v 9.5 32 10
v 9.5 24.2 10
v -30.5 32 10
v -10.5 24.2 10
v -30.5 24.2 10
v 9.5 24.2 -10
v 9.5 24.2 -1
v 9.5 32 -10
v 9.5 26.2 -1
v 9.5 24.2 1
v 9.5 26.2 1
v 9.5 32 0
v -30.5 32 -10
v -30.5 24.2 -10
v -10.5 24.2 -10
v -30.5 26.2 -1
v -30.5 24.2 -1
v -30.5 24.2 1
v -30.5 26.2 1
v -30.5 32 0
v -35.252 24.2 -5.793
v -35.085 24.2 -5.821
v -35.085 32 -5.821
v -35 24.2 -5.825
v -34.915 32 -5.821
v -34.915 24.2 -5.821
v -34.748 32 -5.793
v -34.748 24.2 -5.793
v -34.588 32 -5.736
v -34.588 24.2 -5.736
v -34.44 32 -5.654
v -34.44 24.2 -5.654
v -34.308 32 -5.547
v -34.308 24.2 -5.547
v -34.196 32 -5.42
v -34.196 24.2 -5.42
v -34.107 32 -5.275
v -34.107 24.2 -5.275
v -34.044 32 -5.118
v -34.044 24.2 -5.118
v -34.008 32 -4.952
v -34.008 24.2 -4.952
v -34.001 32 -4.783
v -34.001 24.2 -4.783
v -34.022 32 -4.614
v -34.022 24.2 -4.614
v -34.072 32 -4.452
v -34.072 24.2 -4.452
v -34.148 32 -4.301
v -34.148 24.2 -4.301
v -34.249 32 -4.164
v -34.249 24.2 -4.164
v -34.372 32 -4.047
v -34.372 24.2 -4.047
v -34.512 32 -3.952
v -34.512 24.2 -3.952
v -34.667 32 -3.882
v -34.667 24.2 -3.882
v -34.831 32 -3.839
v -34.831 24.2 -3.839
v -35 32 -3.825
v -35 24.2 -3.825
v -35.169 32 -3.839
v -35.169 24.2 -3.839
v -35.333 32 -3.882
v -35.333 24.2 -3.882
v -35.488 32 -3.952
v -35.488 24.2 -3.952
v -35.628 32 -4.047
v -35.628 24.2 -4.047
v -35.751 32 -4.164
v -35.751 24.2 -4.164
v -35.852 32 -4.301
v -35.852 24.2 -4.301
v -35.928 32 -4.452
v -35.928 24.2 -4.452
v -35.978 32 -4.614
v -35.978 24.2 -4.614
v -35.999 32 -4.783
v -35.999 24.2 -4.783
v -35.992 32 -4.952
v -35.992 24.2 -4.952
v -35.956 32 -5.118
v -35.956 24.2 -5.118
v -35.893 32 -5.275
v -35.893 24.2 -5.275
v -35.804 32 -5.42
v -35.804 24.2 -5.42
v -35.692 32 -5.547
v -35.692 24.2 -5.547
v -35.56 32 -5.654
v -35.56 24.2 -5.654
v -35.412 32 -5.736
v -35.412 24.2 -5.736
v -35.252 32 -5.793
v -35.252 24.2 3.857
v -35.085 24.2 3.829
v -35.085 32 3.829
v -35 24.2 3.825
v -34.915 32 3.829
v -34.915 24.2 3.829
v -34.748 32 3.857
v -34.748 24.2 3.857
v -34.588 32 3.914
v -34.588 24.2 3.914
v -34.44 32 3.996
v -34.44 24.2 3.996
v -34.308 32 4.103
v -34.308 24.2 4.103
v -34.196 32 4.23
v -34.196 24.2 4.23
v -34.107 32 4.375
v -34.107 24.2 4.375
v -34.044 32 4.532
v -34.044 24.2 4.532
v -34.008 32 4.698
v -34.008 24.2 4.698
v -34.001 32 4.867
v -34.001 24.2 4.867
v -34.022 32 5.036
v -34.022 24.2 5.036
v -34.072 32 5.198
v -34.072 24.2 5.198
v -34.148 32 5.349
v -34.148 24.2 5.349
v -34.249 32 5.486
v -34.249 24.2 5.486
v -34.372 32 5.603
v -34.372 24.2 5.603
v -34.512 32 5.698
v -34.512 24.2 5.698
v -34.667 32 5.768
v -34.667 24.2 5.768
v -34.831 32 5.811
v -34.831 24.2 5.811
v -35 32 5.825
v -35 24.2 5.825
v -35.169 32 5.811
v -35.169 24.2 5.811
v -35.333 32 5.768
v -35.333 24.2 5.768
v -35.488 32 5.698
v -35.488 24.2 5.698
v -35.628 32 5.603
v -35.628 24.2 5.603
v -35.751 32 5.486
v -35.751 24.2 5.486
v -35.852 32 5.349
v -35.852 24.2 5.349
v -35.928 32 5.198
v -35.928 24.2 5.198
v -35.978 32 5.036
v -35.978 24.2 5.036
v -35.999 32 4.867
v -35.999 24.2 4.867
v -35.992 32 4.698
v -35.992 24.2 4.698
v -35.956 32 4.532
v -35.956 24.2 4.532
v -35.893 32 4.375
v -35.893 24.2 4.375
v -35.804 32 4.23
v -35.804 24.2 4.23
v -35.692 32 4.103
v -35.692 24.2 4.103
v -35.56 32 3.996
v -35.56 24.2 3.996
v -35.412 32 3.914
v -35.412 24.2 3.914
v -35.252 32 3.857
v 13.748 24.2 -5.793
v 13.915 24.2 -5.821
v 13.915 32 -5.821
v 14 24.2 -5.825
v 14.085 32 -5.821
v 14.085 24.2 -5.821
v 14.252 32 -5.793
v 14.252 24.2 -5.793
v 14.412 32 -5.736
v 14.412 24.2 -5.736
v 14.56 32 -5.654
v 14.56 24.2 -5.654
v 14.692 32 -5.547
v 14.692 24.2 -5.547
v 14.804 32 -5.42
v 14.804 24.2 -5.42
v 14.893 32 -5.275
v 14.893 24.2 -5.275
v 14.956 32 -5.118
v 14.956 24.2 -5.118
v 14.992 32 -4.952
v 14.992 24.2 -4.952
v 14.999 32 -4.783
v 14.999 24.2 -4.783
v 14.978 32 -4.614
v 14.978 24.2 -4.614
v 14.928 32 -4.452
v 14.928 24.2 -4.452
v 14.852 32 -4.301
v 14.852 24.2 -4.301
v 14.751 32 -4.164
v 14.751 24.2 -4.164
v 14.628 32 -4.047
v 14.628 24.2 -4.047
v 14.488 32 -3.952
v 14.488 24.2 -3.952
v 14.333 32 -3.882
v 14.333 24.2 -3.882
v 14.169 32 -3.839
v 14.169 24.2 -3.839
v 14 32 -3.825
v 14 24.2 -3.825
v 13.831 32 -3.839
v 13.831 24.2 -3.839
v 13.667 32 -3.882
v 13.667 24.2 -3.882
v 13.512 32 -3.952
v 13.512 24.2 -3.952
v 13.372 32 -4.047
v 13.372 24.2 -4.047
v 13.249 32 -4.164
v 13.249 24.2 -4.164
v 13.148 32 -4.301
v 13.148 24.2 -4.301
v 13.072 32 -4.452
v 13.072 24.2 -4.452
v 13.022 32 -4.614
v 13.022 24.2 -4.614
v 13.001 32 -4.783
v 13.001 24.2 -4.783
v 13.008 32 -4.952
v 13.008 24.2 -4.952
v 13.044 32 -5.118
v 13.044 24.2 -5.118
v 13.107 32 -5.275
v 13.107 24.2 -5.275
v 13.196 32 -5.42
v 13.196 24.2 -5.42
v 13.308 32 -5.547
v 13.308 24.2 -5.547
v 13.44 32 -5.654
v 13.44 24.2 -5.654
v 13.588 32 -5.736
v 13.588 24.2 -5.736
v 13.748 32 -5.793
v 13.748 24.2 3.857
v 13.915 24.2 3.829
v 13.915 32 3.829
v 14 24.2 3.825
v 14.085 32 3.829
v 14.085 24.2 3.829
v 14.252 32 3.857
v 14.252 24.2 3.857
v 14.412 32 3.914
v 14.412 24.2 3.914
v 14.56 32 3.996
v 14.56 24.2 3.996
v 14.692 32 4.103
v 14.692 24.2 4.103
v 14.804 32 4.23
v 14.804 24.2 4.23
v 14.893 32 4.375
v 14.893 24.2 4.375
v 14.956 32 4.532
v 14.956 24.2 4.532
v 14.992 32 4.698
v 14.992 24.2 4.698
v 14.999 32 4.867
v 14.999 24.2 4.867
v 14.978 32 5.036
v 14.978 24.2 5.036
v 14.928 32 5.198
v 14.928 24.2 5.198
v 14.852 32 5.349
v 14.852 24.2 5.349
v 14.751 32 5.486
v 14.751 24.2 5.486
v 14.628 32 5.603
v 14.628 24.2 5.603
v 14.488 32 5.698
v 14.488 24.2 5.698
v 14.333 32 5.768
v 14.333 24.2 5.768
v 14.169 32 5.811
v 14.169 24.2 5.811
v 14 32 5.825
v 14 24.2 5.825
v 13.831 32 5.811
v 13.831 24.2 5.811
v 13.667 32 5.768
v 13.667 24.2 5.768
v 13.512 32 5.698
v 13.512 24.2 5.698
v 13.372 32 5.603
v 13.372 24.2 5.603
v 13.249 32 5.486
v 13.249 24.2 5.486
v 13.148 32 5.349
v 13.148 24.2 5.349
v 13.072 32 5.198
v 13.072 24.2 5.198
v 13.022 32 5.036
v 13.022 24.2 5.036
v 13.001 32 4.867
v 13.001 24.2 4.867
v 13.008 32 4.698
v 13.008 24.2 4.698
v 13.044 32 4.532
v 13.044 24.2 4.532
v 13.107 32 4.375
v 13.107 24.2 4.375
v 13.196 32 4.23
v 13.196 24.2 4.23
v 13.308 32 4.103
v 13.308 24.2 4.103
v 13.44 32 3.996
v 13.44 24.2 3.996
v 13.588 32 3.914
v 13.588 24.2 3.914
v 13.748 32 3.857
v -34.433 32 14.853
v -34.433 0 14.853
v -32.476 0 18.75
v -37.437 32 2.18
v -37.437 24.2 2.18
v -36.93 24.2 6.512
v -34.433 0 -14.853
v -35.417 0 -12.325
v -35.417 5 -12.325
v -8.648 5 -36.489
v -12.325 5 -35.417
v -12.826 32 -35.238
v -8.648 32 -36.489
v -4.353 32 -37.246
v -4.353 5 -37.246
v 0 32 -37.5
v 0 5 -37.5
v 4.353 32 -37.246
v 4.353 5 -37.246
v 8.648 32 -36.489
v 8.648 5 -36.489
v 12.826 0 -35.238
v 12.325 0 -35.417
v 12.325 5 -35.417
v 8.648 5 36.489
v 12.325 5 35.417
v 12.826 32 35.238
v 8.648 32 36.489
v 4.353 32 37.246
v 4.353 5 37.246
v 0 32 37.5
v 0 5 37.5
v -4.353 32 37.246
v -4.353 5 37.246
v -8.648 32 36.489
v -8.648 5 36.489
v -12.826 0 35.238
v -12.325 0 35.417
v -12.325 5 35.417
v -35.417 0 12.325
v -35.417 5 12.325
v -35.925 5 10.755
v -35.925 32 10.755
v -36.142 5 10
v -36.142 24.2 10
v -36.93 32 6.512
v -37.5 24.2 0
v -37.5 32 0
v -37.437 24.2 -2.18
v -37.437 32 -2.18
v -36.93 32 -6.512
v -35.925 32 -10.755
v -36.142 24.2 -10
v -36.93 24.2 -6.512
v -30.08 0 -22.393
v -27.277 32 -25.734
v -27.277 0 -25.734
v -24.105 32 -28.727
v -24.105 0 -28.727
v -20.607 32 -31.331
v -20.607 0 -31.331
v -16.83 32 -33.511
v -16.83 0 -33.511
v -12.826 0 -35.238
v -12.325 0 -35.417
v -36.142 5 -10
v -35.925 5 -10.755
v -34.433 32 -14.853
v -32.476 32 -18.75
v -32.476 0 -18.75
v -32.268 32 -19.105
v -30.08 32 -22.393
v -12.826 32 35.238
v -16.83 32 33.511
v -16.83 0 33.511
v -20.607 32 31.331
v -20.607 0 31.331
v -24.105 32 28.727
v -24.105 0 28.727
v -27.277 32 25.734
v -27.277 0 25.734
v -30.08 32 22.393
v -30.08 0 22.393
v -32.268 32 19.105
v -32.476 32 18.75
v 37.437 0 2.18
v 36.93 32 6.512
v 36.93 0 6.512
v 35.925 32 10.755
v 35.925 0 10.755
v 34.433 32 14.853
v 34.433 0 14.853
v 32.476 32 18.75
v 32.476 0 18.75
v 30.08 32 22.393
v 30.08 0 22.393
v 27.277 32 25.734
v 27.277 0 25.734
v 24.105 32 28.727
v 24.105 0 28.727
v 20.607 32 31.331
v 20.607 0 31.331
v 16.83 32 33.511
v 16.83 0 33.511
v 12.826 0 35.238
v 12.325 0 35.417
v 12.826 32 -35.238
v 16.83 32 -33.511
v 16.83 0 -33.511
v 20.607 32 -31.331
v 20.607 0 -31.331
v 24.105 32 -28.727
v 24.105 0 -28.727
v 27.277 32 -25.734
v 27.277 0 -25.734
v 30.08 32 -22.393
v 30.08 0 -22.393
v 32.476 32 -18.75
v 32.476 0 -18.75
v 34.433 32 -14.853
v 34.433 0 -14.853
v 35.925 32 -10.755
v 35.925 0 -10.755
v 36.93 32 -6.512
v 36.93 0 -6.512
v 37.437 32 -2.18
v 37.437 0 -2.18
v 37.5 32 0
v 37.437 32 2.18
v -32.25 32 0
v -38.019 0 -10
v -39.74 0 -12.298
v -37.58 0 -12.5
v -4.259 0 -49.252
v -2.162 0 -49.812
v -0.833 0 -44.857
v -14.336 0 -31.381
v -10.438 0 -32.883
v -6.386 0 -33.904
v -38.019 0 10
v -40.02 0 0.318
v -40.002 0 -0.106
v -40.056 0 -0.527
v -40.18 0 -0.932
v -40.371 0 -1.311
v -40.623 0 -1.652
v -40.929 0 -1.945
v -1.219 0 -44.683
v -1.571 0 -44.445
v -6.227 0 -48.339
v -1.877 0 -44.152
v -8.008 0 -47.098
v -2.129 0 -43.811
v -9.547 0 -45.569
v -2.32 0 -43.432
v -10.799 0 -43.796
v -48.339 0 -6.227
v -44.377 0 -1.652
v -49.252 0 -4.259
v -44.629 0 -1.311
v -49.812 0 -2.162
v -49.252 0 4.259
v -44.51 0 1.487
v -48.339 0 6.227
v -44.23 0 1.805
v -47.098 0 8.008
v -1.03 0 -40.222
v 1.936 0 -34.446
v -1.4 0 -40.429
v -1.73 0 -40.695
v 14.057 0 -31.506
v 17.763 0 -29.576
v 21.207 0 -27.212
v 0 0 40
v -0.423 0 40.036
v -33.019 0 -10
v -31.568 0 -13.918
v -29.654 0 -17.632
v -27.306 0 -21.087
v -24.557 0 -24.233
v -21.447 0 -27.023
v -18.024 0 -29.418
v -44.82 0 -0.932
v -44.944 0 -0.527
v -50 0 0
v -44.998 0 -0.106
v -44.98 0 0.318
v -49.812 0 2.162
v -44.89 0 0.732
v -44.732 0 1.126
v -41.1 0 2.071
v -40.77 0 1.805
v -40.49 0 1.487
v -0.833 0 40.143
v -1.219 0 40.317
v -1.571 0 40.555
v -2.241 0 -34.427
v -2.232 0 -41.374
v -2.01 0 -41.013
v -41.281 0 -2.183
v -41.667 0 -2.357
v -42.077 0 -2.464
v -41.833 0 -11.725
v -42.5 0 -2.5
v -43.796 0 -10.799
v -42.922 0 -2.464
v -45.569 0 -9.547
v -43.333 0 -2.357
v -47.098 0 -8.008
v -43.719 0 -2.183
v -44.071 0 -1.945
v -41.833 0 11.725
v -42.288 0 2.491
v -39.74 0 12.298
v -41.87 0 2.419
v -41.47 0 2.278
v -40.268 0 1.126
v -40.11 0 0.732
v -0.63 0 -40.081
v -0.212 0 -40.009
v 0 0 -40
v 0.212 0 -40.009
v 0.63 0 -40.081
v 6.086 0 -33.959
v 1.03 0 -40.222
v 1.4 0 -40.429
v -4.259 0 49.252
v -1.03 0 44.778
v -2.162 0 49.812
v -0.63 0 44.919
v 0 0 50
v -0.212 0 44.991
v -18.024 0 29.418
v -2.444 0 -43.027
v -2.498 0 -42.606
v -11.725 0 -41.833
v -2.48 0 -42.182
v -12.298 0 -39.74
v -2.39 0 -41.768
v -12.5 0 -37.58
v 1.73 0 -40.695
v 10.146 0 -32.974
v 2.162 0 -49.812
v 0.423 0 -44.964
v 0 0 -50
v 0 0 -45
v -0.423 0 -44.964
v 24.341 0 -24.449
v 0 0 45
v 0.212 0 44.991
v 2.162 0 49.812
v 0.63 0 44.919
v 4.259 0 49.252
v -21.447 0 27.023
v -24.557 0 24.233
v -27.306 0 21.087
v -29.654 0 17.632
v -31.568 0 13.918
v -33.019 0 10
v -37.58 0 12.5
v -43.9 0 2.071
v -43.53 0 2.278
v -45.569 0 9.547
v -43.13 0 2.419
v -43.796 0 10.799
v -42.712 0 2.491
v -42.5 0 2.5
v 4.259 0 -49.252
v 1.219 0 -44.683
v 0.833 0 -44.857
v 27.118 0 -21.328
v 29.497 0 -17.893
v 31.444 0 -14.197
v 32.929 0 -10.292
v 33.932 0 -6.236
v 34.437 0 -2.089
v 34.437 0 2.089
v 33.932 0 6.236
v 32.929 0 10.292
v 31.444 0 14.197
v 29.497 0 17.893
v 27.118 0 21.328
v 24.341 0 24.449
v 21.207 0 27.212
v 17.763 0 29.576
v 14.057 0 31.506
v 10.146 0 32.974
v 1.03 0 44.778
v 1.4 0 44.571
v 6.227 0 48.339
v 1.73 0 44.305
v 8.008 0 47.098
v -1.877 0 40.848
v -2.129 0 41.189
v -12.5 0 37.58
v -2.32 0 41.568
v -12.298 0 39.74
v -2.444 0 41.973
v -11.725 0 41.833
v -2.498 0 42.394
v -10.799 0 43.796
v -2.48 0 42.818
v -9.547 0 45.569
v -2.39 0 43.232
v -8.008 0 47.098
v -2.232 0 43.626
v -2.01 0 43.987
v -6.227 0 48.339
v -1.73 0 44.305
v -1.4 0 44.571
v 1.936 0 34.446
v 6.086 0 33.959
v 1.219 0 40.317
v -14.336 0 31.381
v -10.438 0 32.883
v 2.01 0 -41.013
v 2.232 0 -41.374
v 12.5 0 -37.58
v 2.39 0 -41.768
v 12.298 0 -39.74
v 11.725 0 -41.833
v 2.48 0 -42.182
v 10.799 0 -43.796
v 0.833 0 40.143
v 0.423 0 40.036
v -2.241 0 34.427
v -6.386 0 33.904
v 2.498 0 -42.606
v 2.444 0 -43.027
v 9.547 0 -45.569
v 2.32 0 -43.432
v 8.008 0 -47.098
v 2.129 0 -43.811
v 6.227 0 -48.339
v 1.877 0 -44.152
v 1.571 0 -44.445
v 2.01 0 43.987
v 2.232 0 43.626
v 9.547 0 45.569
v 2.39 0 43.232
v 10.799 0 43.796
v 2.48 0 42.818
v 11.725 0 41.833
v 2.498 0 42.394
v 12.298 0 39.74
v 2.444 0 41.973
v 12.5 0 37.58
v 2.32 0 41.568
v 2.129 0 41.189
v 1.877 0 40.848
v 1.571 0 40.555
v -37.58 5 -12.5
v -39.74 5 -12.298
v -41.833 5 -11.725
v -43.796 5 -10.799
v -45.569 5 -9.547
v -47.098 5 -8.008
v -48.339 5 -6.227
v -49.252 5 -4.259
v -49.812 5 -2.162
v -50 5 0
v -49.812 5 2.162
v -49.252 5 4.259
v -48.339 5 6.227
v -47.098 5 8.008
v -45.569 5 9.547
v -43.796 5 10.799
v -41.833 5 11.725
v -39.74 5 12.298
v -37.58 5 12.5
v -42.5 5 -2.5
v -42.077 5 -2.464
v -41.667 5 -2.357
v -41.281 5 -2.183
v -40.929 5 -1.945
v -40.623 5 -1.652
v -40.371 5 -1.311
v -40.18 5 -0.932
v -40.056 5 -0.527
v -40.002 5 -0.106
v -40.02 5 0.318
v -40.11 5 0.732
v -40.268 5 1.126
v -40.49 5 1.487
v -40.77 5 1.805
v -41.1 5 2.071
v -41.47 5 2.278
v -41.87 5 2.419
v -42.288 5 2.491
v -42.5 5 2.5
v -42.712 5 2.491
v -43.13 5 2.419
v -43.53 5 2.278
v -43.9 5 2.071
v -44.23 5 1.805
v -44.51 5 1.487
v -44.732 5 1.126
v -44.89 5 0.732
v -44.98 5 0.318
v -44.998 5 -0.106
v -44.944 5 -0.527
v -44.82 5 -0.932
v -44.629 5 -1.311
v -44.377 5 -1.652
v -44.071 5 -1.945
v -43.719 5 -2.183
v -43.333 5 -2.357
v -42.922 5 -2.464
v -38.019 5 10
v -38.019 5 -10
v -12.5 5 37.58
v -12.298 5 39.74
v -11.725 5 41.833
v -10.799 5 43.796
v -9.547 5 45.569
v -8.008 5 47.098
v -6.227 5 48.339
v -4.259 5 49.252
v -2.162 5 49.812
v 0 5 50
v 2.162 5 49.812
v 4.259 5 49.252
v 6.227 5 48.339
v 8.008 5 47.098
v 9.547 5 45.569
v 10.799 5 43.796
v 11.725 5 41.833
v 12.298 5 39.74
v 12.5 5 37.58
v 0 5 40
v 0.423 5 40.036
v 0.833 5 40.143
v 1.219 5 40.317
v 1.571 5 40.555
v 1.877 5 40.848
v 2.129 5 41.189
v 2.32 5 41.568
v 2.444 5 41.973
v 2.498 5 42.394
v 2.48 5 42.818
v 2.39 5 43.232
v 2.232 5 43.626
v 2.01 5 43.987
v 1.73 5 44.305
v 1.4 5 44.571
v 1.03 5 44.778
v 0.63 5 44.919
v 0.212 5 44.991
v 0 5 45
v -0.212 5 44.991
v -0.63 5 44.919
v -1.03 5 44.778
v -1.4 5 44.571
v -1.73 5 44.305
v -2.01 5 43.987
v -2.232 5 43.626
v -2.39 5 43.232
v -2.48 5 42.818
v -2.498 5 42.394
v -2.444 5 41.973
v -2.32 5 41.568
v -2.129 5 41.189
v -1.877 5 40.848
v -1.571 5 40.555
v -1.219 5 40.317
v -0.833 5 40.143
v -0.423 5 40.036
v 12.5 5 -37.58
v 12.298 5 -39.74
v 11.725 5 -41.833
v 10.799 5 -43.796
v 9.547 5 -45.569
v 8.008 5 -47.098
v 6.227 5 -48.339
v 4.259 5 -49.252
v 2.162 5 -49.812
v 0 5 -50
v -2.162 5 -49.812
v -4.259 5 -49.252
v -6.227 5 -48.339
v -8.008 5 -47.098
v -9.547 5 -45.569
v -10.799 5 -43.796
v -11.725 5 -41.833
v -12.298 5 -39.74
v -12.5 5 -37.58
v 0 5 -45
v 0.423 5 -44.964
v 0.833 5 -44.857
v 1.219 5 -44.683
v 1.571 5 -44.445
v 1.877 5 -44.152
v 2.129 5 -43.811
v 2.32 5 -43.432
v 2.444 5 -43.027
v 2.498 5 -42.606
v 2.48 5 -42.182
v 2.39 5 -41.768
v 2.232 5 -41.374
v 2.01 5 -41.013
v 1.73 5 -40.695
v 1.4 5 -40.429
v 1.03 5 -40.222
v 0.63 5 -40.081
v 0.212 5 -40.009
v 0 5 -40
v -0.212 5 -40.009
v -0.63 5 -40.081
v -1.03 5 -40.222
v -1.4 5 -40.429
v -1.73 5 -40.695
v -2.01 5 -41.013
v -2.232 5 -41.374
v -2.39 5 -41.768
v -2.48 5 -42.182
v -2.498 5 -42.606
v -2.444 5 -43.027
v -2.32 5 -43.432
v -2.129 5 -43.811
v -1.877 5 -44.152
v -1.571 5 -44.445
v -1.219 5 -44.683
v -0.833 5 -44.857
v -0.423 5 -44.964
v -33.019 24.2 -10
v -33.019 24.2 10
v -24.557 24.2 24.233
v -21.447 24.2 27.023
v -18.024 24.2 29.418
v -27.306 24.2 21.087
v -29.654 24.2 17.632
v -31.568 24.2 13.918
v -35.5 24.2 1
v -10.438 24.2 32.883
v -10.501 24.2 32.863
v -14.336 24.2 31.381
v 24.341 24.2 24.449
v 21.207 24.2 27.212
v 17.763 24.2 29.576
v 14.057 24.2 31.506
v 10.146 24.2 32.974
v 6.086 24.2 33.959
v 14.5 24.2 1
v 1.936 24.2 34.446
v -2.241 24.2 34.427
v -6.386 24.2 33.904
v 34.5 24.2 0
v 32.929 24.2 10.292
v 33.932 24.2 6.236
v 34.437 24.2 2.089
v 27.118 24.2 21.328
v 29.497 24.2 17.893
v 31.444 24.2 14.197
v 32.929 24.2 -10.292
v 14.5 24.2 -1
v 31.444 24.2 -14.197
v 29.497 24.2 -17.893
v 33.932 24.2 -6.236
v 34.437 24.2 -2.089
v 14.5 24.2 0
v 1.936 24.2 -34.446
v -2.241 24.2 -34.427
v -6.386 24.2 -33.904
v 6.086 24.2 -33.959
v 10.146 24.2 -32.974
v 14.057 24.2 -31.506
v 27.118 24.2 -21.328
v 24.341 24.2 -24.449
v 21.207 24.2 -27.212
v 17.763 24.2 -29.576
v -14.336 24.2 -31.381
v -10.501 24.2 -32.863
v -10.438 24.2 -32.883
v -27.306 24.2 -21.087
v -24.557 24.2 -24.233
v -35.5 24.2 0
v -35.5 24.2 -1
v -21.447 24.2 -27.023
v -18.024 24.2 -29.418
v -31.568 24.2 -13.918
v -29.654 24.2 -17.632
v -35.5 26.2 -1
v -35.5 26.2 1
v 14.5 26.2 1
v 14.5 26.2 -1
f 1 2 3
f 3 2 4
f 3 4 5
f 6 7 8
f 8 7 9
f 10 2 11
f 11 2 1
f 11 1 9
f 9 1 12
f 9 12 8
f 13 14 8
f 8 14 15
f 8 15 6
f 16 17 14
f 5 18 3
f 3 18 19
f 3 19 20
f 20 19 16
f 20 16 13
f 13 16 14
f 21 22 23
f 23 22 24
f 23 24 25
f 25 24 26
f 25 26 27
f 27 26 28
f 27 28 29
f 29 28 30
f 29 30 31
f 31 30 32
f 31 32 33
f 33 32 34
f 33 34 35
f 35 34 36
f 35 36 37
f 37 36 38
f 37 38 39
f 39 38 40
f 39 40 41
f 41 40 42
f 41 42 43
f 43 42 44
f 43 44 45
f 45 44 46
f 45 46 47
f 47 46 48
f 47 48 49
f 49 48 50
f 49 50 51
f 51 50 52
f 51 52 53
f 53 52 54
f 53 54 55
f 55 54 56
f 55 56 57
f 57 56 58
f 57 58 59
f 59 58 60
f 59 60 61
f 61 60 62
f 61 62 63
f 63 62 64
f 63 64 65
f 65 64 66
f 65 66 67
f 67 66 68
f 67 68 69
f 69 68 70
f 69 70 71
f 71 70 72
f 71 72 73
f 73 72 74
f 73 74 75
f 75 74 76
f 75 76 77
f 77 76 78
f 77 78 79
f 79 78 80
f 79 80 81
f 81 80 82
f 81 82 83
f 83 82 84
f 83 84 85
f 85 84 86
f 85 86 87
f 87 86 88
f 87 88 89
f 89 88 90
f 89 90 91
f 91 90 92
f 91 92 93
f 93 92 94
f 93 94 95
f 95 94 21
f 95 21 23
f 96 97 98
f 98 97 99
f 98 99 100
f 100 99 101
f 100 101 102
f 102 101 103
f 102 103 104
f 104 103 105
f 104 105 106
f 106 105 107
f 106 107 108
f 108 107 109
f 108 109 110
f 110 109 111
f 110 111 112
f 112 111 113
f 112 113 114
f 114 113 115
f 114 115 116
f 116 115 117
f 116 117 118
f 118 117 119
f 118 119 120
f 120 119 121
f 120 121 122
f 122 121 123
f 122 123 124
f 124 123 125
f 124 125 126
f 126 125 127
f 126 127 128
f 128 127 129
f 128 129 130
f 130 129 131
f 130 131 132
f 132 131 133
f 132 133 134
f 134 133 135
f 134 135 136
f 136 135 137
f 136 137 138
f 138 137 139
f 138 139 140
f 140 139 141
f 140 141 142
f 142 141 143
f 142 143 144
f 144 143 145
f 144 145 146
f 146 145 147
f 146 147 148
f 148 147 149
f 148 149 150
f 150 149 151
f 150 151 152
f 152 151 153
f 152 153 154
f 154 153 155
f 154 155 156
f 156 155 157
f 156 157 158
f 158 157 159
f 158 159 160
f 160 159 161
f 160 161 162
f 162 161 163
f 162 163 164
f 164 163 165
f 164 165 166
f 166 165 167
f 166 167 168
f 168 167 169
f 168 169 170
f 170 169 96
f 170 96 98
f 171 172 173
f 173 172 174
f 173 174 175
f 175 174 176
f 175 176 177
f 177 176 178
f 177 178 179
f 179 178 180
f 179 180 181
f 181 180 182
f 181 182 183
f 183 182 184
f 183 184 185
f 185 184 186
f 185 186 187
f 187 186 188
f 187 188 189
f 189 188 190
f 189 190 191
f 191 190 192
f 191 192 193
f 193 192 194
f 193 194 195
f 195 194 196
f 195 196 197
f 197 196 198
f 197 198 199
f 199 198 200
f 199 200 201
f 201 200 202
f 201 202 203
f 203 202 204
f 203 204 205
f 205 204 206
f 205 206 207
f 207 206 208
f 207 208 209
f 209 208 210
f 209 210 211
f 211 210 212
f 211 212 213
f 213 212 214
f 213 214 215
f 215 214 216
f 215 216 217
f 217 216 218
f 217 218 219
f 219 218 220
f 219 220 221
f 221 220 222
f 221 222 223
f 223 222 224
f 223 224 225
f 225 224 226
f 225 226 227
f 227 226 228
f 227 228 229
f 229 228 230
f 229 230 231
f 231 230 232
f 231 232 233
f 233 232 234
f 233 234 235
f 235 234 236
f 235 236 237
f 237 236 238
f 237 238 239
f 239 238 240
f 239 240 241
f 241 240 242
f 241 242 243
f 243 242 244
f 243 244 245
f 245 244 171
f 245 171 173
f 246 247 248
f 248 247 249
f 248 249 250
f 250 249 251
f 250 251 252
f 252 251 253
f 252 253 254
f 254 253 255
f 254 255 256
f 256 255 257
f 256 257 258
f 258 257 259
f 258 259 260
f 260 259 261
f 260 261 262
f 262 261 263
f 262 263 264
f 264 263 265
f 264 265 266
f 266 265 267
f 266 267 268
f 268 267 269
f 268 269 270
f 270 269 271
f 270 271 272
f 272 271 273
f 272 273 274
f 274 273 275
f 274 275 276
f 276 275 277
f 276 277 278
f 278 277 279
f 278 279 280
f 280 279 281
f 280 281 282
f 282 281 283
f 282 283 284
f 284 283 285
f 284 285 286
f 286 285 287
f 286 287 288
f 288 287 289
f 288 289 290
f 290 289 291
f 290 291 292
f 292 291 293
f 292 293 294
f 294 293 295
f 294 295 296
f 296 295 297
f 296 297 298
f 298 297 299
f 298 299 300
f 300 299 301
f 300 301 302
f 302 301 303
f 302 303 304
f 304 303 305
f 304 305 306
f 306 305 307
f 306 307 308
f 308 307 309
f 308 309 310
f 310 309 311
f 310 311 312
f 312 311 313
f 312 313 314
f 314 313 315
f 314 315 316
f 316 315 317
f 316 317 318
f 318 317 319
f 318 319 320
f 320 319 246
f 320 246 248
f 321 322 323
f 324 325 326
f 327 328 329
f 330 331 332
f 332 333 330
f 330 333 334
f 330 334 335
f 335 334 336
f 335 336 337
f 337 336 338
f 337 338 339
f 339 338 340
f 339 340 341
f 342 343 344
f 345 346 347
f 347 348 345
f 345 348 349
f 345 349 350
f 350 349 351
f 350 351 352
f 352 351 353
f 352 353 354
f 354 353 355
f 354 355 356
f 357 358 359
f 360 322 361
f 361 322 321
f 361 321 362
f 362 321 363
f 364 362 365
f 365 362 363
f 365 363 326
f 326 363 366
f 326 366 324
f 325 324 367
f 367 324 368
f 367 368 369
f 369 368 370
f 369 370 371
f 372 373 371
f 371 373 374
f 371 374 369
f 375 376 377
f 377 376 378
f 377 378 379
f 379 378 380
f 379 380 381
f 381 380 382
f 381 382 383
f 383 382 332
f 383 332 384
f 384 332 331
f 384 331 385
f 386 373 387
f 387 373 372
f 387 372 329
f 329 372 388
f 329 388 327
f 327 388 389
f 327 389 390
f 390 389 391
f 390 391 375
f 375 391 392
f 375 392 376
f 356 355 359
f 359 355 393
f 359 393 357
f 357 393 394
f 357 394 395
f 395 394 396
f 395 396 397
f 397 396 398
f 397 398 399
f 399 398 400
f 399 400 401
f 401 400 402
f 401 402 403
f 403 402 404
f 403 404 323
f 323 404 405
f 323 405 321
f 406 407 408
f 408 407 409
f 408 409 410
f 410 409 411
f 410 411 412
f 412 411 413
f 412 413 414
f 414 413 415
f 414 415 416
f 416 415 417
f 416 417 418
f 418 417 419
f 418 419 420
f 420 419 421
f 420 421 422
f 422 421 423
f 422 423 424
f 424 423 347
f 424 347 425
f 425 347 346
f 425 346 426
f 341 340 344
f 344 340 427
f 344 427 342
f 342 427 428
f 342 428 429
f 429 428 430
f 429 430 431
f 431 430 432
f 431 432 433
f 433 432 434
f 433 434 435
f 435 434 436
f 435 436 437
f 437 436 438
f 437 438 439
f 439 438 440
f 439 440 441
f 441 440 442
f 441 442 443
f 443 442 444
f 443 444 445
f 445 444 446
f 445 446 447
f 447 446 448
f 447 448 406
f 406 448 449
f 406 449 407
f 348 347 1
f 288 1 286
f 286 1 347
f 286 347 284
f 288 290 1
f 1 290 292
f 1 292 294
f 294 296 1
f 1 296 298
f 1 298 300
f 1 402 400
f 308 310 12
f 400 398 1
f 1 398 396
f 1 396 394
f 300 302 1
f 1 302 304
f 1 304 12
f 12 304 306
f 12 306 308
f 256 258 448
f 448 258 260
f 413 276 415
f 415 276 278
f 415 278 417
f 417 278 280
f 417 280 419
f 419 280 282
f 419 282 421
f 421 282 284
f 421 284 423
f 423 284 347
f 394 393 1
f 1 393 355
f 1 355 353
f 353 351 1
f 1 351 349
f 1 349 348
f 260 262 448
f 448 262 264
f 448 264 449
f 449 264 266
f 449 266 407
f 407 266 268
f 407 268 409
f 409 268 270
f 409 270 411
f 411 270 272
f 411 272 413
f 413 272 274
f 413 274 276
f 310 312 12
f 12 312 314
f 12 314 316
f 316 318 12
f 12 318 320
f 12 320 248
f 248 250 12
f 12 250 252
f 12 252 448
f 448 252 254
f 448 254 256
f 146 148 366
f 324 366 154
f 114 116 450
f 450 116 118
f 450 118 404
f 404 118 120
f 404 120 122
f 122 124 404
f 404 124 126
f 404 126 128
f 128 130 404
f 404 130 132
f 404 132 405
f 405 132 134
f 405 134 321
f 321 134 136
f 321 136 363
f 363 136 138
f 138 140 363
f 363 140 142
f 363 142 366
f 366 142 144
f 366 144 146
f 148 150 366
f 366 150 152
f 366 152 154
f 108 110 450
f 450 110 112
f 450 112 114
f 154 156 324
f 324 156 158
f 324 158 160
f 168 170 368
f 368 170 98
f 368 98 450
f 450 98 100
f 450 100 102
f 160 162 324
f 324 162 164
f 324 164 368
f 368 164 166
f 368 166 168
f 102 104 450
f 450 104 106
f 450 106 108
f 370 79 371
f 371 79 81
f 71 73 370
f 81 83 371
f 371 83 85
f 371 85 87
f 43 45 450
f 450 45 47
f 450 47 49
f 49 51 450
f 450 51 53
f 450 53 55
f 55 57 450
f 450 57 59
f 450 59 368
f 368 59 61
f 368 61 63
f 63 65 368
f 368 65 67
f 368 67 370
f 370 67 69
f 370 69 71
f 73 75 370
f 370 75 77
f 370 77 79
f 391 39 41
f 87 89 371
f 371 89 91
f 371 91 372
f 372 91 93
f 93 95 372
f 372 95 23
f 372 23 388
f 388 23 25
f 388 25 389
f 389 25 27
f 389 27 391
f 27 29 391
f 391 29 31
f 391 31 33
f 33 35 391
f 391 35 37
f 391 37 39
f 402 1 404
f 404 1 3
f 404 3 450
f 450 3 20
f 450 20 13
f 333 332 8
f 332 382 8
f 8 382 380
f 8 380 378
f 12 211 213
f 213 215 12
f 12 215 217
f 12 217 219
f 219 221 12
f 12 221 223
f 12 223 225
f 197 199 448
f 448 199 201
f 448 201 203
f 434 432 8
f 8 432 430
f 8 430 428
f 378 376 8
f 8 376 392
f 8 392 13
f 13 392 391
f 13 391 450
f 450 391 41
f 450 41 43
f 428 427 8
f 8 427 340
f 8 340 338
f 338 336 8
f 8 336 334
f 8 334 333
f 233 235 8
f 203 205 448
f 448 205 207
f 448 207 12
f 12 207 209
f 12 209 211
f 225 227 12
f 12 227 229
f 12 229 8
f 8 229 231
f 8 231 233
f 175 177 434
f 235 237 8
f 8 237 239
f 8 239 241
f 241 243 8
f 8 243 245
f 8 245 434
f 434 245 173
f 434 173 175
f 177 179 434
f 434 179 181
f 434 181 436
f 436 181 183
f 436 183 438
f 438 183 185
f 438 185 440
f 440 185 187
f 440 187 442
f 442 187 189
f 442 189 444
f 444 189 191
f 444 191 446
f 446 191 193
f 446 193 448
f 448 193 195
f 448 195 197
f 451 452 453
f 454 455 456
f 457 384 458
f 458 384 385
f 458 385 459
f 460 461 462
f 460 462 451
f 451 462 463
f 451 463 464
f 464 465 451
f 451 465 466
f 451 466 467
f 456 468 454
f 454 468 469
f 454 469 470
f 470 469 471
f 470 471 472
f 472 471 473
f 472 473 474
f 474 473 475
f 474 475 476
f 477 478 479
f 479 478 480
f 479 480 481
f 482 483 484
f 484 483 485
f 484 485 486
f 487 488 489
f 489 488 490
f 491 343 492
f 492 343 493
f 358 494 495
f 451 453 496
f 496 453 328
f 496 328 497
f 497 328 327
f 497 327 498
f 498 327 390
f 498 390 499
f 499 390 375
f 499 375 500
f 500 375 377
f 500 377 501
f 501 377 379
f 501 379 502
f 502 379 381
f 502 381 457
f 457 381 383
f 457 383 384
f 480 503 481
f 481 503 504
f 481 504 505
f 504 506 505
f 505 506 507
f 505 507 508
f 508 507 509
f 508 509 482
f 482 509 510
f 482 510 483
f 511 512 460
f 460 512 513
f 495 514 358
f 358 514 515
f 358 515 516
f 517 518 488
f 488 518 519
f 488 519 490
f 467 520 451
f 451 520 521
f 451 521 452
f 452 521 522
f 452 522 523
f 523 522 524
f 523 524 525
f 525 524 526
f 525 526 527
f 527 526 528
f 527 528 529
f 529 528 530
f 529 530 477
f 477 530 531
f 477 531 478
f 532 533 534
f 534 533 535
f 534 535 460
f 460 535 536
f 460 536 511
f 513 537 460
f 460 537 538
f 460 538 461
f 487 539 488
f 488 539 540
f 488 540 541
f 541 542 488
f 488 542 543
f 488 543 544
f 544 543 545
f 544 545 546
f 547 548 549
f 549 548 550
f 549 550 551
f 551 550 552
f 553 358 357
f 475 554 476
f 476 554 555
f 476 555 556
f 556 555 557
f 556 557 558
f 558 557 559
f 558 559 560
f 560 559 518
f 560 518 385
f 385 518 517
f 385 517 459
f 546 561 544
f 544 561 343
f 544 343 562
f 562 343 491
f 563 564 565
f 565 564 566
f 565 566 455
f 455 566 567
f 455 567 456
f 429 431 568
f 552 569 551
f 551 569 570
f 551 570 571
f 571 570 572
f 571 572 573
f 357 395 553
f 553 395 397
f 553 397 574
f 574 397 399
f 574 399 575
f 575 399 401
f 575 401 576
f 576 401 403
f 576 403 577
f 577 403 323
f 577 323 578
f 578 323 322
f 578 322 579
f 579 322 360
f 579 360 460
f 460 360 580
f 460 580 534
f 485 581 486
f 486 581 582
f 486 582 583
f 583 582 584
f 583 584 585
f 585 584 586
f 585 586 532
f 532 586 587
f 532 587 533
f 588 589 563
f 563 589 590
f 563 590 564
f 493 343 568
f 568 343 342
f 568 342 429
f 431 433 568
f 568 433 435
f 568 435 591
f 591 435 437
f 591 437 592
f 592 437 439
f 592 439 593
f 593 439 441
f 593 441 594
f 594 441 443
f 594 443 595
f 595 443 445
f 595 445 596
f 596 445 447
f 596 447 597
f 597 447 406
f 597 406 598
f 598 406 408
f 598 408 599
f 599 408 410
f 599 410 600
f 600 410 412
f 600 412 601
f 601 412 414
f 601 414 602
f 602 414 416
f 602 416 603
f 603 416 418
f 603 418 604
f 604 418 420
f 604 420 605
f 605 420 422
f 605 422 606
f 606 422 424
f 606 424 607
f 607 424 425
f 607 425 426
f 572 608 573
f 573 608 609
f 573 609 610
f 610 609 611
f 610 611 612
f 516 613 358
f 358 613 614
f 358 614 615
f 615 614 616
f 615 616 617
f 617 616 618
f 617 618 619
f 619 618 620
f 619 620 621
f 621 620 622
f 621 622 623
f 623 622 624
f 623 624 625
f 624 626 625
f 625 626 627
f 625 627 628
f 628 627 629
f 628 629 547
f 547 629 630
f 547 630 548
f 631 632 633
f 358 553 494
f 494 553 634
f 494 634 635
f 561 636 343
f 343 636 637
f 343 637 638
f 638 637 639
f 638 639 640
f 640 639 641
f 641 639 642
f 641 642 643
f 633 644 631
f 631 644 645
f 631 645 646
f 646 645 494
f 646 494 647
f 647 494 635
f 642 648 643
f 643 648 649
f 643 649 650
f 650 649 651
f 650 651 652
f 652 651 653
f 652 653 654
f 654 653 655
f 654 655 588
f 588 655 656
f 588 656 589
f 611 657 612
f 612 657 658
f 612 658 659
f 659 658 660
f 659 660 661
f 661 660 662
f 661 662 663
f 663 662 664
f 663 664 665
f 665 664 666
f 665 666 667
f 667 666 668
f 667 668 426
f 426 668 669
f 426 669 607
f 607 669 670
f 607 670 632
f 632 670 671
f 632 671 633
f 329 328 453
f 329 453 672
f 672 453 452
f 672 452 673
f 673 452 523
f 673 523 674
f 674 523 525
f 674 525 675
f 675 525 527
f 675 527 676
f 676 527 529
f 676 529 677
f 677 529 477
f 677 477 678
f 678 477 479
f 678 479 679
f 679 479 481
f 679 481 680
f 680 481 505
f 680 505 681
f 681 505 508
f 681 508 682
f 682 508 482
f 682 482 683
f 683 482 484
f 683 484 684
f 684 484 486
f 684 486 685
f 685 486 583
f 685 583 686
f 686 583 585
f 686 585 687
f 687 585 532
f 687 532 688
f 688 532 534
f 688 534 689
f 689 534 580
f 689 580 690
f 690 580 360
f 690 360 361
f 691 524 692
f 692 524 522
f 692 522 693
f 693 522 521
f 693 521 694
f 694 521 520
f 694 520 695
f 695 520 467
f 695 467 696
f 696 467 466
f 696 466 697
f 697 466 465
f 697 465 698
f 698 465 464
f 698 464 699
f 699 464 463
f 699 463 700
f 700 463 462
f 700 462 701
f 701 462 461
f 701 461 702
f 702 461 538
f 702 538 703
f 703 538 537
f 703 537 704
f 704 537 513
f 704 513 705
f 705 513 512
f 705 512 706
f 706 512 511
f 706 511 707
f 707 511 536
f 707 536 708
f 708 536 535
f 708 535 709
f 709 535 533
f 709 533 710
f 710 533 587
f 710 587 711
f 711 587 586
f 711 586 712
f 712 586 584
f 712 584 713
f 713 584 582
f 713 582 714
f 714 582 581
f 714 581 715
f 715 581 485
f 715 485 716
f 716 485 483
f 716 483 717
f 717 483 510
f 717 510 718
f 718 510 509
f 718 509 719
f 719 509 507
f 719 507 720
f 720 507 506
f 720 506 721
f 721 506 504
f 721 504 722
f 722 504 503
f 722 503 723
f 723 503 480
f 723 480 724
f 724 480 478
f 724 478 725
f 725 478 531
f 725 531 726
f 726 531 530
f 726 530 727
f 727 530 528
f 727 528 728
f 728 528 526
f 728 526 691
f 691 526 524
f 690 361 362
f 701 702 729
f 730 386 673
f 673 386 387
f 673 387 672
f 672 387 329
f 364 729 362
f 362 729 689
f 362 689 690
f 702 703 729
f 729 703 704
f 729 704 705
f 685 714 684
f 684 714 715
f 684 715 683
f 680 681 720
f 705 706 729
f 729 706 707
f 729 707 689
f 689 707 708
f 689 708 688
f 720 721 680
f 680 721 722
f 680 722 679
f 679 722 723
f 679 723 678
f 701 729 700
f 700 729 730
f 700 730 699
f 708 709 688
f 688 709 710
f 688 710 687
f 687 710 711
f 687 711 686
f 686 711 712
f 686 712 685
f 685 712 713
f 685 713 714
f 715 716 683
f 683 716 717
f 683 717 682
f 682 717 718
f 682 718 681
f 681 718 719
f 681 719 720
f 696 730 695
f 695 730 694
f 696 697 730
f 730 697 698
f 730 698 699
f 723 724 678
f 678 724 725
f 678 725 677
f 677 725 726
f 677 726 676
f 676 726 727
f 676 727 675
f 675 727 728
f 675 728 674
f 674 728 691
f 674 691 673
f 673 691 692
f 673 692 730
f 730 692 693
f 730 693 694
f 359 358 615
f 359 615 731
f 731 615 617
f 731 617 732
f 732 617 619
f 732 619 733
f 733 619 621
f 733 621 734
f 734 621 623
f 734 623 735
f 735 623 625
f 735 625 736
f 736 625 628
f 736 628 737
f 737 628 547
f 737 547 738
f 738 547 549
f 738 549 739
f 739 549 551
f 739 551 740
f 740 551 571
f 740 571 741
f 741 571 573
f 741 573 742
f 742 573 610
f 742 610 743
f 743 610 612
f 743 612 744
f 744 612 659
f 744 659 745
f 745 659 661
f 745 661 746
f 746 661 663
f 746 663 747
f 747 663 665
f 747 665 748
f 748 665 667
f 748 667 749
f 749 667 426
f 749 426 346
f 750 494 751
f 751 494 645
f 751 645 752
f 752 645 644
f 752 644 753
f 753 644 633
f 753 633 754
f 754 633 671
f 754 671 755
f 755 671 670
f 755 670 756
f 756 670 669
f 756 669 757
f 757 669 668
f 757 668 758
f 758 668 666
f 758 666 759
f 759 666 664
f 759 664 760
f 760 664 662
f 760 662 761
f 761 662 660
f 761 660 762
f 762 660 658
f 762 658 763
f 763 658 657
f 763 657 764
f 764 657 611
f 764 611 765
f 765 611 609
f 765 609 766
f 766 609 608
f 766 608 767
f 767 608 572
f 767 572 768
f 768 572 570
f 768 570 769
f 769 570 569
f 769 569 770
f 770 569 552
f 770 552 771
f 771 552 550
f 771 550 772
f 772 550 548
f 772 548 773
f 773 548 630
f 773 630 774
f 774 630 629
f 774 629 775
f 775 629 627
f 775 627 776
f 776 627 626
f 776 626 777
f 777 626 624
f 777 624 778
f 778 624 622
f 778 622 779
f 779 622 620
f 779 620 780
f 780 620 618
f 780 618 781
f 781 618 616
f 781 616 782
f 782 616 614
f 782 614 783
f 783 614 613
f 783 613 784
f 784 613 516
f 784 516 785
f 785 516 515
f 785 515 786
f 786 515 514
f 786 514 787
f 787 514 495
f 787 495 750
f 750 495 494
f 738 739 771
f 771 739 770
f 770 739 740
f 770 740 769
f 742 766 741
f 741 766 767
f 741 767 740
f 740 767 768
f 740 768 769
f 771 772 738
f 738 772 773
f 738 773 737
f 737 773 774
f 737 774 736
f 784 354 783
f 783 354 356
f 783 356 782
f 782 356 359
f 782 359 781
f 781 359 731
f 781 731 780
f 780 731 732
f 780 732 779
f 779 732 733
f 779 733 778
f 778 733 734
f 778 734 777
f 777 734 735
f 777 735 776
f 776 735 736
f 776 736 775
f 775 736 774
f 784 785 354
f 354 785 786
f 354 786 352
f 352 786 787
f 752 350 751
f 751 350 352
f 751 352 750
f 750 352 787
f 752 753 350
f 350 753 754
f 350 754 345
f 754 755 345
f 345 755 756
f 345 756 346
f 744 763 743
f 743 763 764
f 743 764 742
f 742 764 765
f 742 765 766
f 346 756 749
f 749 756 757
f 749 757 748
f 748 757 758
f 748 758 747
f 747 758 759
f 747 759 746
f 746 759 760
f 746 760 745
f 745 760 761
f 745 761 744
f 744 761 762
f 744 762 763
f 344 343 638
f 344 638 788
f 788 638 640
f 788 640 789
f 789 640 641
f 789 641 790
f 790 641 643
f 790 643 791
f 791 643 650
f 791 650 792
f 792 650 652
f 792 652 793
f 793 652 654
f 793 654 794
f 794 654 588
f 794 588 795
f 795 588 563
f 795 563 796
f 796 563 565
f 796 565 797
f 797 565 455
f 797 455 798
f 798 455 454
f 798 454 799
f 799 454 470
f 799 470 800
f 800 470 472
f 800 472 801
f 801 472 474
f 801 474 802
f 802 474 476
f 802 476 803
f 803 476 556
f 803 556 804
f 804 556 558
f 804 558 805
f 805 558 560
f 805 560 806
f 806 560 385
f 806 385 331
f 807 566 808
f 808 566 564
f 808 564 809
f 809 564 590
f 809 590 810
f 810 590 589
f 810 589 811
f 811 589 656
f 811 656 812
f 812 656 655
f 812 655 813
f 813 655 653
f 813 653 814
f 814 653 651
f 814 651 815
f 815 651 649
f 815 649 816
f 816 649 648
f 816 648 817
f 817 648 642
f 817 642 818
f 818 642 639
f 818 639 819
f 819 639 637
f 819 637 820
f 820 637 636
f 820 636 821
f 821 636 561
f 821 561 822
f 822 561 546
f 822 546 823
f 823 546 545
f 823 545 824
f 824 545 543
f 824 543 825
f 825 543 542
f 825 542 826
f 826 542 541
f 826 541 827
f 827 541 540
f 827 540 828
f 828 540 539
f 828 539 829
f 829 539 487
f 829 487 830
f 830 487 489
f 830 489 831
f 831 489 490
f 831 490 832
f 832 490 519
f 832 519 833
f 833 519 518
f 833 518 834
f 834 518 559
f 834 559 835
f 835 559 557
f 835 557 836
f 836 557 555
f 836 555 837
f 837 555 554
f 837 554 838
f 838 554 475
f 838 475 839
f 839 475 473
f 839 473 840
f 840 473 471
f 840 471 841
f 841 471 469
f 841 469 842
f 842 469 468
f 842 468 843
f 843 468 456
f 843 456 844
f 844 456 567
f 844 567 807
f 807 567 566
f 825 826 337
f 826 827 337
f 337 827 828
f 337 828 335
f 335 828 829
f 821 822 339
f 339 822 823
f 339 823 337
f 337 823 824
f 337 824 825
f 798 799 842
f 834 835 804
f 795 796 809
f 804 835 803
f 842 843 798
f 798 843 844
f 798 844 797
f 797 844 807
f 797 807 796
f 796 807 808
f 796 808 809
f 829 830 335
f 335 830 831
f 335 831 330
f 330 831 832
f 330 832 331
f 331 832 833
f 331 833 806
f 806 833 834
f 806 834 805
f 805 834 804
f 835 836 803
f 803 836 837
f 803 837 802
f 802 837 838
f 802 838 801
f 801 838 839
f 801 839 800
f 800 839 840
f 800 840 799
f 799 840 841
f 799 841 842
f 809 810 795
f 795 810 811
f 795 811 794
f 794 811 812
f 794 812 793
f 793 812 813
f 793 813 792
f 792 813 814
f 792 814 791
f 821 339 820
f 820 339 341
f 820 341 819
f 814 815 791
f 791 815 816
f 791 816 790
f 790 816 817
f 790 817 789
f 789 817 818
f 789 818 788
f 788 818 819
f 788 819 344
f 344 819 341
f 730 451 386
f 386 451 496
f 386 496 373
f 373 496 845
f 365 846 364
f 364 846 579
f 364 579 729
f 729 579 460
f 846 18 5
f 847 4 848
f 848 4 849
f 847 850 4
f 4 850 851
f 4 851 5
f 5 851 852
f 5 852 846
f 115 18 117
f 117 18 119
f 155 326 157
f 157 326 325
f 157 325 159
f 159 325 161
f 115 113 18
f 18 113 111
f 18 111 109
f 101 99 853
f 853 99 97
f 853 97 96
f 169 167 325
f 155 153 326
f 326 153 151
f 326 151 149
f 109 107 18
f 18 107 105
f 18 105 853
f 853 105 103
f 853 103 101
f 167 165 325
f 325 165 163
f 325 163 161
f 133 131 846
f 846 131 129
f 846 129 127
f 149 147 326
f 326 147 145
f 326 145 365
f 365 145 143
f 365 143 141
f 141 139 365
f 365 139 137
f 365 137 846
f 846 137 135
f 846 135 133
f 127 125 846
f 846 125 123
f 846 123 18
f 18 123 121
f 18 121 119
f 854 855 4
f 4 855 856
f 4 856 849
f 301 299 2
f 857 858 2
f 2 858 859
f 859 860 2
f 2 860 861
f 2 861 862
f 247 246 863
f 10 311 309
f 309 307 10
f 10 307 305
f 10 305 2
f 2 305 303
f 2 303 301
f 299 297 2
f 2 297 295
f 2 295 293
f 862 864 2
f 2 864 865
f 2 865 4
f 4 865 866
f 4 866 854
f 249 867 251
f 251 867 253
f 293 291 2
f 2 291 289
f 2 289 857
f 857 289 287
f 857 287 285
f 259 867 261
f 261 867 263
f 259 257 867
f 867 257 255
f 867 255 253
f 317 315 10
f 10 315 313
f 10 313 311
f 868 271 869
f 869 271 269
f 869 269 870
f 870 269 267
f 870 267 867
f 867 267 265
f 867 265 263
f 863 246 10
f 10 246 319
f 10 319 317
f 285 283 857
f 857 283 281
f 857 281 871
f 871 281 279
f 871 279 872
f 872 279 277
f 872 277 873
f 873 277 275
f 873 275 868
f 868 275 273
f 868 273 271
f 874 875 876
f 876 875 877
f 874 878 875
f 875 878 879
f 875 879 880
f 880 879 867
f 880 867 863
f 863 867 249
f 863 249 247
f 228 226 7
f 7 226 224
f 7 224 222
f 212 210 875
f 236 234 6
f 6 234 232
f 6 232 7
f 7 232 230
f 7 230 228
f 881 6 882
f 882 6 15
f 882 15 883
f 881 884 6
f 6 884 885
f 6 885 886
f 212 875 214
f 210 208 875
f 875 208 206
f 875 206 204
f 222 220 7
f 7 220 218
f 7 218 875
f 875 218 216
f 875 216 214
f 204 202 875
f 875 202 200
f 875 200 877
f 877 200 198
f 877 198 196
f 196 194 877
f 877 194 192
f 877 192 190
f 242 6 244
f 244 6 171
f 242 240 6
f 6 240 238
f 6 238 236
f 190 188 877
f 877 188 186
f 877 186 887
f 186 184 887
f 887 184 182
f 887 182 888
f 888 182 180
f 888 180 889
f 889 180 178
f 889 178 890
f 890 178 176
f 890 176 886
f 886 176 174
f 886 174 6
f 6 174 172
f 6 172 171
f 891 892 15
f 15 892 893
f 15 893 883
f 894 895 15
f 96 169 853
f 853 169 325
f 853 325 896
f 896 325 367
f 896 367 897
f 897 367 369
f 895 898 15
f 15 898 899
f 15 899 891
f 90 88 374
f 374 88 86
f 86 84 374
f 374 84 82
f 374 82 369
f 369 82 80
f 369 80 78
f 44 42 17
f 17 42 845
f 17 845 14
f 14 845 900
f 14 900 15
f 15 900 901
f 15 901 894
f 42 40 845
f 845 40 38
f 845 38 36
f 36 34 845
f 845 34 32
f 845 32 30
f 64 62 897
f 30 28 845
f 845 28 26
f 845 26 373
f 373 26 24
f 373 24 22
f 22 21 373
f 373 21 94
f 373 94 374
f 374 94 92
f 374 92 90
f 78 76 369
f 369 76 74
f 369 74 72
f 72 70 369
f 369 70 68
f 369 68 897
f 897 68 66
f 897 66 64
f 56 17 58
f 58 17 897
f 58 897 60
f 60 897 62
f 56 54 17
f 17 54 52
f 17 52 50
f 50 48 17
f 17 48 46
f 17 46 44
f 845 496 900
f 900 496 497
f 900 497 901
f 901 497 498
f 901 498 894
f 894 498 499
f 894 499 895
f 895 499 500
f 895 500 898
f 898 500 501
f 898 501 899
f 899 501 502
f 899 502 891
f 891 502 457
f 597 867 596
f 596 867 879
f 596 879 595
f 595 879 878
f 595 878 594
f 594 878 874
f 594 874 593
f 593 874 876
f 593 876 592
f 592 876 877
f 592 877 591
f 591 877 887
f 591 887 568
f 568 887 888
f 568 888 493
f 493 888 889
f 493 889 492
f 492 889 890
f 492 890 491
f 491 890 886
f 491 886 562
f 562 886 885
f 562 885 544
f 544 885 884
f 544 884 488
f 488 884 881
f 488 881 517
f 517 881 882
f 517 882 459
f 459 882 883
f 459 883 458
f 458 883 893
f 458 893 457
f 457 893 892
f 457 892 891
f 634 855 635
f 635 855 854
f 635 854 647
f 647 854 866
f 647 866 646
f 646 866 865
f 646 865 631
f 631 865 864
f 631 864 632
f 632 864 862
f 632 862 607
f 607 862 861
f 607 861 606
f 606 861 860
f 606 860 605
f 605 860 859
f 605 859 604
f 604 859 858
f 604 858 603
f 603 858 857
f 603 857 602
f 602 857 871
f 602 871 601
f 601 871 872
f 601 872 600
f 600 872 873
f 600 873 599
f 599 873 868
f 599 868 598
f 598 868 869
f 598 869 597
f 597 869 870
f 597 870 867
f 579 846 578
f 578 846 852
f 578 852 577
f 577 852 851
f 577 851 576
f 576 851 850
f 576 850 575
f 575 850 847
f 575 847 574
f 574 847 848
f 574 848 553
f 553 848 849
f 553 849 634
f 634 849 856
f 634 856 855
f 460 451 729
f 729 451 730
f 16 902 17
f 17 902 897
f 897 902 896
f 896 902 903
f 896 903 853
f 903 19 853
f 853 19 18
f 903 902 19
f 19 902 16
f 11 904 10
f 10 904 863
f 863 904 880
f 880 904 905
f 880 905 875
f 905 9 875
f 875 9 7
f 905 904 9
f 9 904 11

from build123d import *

# Parameters (mm, degrees)
SKETCH1_R           = 2.5
BOSS_EXTRUDE1_DEPTH = 32
SKETCH1_3_R         = 2.5
BOSS_EXTRUDE2_DEPTH = 5
CUT_EXTRUDE1_START  = -32
SKETCH2_R           = 1
SKETCH2_W           = 40
SKETCH2_H           = 20
SKETCH2_R_2         = 2.5
CUT_EXTRUDE1_DEPTH  = 32
CUT_EXTRUDE2_DEPTH  = 24.2
SKETCH4_W           = 5
SKETCH4_H           = 2
CUT_EXTRUDE3_DEPTH  = 2


with BuildPart() as part:
    # Sketch1 → Boss-Extrude1 (new body)
    with BuildSketch(Plane(origin=(0, 0, 0), x_dir=(1, 0, 0), z_dir=(0, 1, 0))):
        with BuildLine():
            ThreePointArc((-35.416666667, 12.325166215), (-37.5, 0), (-35.416666667, -12.325166215))
            ThreePointArc((-35.416666667, -12.325166215), (-26.516504294, -26.516504294), (-12.325166215, -35.416666667))
            ThreePointArc((-12.325166215, -35.416666667), (0, -37.5), (12.325166215, -35.416666667))
            ThreePointArc((12.325166215, -35.416666667), (26.516504294, -26.516504294), (35.416666667, -12.325166215))
            ThreePointArc((35.416666667, -12.325166215), (36.975498644, -6.25), (37.5, 0))
            ThreePointArc((37.5, 0), (36.975498644, 6.25), (35.416666667, 12.325166215))
            ThreePointArc((35.416666667, 12.325166215), (26.516504294, 26.516504294), (12.325166215, 35.416666667))
            ThreePointArc((12.325166215, 35.416666667), (0, 37.5), (-12.325166215, 35.416666667))
            ThreePointArc((-12.325166215, 35.416666667), (-26.516504294, 26.516504294), (-35.416666667, 12.325166215))
        make_face()
        with Locations(Location((0, 0, 0), (0, 0, 270))):
            Circle(SKETCH1_R, mode=Mode.SUBTRACT)
    extrude(amount=BOSS_EXTRUDE1_DEPTH)

    # Sketch1<3> → Boss-Extrude2 (add)
    # profile 1 of 3: a face of its own
    with BuildSketch(Plane(origin=(0, 0, 0), x_dir=(1, 0, 0), z_dir=(0, 1, 0))):
        with BuildLine():
            ThreePointArc((-35.416666667, 12.325166215), (-50, 0), (-35.416666667, -12.325166215))
            ThreePointArc((-35.416666667, -12.325166215), (-37.5, 0), (-35.416666667, 12.325166215))
        make_face()
        with Locations(Location((-42.5, 0, 0), (0, 0, 270))):
            Circle(SKETCH1_3_R, mode=Mode.SUBTRACT)
    # profile 2 of 3: a face of its own
    with BuildSketch(Plane(origin=(0, 0, 0), x_dir=(1, 0, 0), z_dir=(0, 1, 0))):
        with BuildLine():
            ThreePointArc((12.325166215, -35.416666667), (0, -37.5), (-12.325166215, -35.416666667))
            ThreePointArc((-12.325166215, -35.416666667), (0, -50), (12.325166215, -35.416666667))
        make_face()
        with Locations(Location((0, -42.5, 0), (0, 0, 270))):
            Circle(SKETCH1_3_R, mode=Mode.SUBTRACT)
    # profile 3 of 3: a face of its own
    with BuildSketch(Plane(origin=(0, 0, 0), x_dir=(1, 0, 0), z_dir=(0, 1, 0))):
        with BuildLine():
            ThreePointArc((12.325166215, 35.416666667), (0, 50), (-12.325166215, 35.416666667))
            ThreePointArc((-12.325166215, 35.416666667), (0, 37.5), (12.325166215, 35.416666667))
        make_face()
        with Locations(Location((0, 42.5, 0), (0, 0, 270))):
            Circle(SKETCH1_3_R, mode=Mode.SUBTRACT)
    extrude(amount=BOSS_EXTRUDE2_DEPTH)

    # Sketch2 → Cut-Extrude1 (cut)
    # profile 1 of 5: a face of its own
    with BuildSketch(Plane(origin=(0, 32, 0), x_dir=(1, 0, 0), z_dir=(0, 1, 0)).offset(CUT_EXTRUDE1_START)):
        with Locations(Location((-35, 4.825, 0), (0, 0, 270))):
            Circle(SKETCH2_R)
    # profile 2 of 5: a face of its own
    with BuildSketch(Plane(origin=(0, 32, 0), x_dir=(1, 0, 0), z_dir=(0, 1, 0)).offset(CUT_EXTRUDE1_START)):
        with Locations(Location((-35, -4.825, 0), (0, 0, 270))):
            Circle(SKETCH2_R)
    # profile 3 of 5: a face of its own
    with BuildSketch(Plane(origin=(0, 32, 0), x_dir=(1, 0, 0), z_dir=(0, 1, 0)).offset(CUT_EXTRUDE1_START)):
        with Locations(Location((14, 4.825, 0), (0, 0, 270))):
            Circle(SKETCH2_R)
    # profile 4 of 5: a face of its own
    with BuildSketch(Plane(origin=(0, 32, 0), x_dir=(1, 0, 0), z_dir=(0, 1, 0)).offset(CUT_EXTRUDE1_START)):
        with Locations(Location((14, -4.825, 0), (0, 0, 270))):
            Circle(SKETCH2_R)
    # profile 5 of 5: a face of its own
    with BuildSketch(Plane(origin=(0, 32, 0), x_dir=(1, 0, 0), z_dir=(0, 1, 0)).offset(CUT_EXTRUDE1_START)):
        with Locations((-10.5, 0)):
            Rectangle(SKETCH2_W, SKETCH2_H)
        Circle(SKETCH2_R_2, mode=Mode.SUBTRACT)
    extrude(amount=CUT_EXTRUDE1_DEPTH, mode=Mode.SUBTRACT)

    # Sketch3 → Cut-Extrude2 (cut)
    with BuildSketch(Plane(origin=(0, 0, 0), x_dir=(-1, 0, 0), z_dir=(0, -1, 0))):
        with BuildLine():
            Line((33.018933962, -10), (38.018933962, -10))
            Line((38.018933962, -10), (38.018933962, 10))
            Line((38.018933962, 10), (33.018933962, 10))
            ThreePointArc((33.018933962, 10), (-34.5, 0), (33.018933962, -10))
        make_face()
    extrude(amount=-CUT_EXTRUDE2_DEPTH, mode=Mode.SUBTRACT)

    # Sketch4 → Cut-Extrude3 (cut)
    with BuildSketch(Plane(origin=(0, 24.2, 0), x_dir=(-1, 0, 0), z_dir=(0, -1, 0))):
        with Locations((-12, 0)):
            Rectangle(SKETCH4_W, SKETCH4_H)
        with Locations((33, 0)):
            Rectangle(SKETCH4_W, SKETCH4_H)
    extrude(amount=-CUT_EXTRUDE3_DEPTH, mode=Mode.SUBTRACT)


solid = part.part
